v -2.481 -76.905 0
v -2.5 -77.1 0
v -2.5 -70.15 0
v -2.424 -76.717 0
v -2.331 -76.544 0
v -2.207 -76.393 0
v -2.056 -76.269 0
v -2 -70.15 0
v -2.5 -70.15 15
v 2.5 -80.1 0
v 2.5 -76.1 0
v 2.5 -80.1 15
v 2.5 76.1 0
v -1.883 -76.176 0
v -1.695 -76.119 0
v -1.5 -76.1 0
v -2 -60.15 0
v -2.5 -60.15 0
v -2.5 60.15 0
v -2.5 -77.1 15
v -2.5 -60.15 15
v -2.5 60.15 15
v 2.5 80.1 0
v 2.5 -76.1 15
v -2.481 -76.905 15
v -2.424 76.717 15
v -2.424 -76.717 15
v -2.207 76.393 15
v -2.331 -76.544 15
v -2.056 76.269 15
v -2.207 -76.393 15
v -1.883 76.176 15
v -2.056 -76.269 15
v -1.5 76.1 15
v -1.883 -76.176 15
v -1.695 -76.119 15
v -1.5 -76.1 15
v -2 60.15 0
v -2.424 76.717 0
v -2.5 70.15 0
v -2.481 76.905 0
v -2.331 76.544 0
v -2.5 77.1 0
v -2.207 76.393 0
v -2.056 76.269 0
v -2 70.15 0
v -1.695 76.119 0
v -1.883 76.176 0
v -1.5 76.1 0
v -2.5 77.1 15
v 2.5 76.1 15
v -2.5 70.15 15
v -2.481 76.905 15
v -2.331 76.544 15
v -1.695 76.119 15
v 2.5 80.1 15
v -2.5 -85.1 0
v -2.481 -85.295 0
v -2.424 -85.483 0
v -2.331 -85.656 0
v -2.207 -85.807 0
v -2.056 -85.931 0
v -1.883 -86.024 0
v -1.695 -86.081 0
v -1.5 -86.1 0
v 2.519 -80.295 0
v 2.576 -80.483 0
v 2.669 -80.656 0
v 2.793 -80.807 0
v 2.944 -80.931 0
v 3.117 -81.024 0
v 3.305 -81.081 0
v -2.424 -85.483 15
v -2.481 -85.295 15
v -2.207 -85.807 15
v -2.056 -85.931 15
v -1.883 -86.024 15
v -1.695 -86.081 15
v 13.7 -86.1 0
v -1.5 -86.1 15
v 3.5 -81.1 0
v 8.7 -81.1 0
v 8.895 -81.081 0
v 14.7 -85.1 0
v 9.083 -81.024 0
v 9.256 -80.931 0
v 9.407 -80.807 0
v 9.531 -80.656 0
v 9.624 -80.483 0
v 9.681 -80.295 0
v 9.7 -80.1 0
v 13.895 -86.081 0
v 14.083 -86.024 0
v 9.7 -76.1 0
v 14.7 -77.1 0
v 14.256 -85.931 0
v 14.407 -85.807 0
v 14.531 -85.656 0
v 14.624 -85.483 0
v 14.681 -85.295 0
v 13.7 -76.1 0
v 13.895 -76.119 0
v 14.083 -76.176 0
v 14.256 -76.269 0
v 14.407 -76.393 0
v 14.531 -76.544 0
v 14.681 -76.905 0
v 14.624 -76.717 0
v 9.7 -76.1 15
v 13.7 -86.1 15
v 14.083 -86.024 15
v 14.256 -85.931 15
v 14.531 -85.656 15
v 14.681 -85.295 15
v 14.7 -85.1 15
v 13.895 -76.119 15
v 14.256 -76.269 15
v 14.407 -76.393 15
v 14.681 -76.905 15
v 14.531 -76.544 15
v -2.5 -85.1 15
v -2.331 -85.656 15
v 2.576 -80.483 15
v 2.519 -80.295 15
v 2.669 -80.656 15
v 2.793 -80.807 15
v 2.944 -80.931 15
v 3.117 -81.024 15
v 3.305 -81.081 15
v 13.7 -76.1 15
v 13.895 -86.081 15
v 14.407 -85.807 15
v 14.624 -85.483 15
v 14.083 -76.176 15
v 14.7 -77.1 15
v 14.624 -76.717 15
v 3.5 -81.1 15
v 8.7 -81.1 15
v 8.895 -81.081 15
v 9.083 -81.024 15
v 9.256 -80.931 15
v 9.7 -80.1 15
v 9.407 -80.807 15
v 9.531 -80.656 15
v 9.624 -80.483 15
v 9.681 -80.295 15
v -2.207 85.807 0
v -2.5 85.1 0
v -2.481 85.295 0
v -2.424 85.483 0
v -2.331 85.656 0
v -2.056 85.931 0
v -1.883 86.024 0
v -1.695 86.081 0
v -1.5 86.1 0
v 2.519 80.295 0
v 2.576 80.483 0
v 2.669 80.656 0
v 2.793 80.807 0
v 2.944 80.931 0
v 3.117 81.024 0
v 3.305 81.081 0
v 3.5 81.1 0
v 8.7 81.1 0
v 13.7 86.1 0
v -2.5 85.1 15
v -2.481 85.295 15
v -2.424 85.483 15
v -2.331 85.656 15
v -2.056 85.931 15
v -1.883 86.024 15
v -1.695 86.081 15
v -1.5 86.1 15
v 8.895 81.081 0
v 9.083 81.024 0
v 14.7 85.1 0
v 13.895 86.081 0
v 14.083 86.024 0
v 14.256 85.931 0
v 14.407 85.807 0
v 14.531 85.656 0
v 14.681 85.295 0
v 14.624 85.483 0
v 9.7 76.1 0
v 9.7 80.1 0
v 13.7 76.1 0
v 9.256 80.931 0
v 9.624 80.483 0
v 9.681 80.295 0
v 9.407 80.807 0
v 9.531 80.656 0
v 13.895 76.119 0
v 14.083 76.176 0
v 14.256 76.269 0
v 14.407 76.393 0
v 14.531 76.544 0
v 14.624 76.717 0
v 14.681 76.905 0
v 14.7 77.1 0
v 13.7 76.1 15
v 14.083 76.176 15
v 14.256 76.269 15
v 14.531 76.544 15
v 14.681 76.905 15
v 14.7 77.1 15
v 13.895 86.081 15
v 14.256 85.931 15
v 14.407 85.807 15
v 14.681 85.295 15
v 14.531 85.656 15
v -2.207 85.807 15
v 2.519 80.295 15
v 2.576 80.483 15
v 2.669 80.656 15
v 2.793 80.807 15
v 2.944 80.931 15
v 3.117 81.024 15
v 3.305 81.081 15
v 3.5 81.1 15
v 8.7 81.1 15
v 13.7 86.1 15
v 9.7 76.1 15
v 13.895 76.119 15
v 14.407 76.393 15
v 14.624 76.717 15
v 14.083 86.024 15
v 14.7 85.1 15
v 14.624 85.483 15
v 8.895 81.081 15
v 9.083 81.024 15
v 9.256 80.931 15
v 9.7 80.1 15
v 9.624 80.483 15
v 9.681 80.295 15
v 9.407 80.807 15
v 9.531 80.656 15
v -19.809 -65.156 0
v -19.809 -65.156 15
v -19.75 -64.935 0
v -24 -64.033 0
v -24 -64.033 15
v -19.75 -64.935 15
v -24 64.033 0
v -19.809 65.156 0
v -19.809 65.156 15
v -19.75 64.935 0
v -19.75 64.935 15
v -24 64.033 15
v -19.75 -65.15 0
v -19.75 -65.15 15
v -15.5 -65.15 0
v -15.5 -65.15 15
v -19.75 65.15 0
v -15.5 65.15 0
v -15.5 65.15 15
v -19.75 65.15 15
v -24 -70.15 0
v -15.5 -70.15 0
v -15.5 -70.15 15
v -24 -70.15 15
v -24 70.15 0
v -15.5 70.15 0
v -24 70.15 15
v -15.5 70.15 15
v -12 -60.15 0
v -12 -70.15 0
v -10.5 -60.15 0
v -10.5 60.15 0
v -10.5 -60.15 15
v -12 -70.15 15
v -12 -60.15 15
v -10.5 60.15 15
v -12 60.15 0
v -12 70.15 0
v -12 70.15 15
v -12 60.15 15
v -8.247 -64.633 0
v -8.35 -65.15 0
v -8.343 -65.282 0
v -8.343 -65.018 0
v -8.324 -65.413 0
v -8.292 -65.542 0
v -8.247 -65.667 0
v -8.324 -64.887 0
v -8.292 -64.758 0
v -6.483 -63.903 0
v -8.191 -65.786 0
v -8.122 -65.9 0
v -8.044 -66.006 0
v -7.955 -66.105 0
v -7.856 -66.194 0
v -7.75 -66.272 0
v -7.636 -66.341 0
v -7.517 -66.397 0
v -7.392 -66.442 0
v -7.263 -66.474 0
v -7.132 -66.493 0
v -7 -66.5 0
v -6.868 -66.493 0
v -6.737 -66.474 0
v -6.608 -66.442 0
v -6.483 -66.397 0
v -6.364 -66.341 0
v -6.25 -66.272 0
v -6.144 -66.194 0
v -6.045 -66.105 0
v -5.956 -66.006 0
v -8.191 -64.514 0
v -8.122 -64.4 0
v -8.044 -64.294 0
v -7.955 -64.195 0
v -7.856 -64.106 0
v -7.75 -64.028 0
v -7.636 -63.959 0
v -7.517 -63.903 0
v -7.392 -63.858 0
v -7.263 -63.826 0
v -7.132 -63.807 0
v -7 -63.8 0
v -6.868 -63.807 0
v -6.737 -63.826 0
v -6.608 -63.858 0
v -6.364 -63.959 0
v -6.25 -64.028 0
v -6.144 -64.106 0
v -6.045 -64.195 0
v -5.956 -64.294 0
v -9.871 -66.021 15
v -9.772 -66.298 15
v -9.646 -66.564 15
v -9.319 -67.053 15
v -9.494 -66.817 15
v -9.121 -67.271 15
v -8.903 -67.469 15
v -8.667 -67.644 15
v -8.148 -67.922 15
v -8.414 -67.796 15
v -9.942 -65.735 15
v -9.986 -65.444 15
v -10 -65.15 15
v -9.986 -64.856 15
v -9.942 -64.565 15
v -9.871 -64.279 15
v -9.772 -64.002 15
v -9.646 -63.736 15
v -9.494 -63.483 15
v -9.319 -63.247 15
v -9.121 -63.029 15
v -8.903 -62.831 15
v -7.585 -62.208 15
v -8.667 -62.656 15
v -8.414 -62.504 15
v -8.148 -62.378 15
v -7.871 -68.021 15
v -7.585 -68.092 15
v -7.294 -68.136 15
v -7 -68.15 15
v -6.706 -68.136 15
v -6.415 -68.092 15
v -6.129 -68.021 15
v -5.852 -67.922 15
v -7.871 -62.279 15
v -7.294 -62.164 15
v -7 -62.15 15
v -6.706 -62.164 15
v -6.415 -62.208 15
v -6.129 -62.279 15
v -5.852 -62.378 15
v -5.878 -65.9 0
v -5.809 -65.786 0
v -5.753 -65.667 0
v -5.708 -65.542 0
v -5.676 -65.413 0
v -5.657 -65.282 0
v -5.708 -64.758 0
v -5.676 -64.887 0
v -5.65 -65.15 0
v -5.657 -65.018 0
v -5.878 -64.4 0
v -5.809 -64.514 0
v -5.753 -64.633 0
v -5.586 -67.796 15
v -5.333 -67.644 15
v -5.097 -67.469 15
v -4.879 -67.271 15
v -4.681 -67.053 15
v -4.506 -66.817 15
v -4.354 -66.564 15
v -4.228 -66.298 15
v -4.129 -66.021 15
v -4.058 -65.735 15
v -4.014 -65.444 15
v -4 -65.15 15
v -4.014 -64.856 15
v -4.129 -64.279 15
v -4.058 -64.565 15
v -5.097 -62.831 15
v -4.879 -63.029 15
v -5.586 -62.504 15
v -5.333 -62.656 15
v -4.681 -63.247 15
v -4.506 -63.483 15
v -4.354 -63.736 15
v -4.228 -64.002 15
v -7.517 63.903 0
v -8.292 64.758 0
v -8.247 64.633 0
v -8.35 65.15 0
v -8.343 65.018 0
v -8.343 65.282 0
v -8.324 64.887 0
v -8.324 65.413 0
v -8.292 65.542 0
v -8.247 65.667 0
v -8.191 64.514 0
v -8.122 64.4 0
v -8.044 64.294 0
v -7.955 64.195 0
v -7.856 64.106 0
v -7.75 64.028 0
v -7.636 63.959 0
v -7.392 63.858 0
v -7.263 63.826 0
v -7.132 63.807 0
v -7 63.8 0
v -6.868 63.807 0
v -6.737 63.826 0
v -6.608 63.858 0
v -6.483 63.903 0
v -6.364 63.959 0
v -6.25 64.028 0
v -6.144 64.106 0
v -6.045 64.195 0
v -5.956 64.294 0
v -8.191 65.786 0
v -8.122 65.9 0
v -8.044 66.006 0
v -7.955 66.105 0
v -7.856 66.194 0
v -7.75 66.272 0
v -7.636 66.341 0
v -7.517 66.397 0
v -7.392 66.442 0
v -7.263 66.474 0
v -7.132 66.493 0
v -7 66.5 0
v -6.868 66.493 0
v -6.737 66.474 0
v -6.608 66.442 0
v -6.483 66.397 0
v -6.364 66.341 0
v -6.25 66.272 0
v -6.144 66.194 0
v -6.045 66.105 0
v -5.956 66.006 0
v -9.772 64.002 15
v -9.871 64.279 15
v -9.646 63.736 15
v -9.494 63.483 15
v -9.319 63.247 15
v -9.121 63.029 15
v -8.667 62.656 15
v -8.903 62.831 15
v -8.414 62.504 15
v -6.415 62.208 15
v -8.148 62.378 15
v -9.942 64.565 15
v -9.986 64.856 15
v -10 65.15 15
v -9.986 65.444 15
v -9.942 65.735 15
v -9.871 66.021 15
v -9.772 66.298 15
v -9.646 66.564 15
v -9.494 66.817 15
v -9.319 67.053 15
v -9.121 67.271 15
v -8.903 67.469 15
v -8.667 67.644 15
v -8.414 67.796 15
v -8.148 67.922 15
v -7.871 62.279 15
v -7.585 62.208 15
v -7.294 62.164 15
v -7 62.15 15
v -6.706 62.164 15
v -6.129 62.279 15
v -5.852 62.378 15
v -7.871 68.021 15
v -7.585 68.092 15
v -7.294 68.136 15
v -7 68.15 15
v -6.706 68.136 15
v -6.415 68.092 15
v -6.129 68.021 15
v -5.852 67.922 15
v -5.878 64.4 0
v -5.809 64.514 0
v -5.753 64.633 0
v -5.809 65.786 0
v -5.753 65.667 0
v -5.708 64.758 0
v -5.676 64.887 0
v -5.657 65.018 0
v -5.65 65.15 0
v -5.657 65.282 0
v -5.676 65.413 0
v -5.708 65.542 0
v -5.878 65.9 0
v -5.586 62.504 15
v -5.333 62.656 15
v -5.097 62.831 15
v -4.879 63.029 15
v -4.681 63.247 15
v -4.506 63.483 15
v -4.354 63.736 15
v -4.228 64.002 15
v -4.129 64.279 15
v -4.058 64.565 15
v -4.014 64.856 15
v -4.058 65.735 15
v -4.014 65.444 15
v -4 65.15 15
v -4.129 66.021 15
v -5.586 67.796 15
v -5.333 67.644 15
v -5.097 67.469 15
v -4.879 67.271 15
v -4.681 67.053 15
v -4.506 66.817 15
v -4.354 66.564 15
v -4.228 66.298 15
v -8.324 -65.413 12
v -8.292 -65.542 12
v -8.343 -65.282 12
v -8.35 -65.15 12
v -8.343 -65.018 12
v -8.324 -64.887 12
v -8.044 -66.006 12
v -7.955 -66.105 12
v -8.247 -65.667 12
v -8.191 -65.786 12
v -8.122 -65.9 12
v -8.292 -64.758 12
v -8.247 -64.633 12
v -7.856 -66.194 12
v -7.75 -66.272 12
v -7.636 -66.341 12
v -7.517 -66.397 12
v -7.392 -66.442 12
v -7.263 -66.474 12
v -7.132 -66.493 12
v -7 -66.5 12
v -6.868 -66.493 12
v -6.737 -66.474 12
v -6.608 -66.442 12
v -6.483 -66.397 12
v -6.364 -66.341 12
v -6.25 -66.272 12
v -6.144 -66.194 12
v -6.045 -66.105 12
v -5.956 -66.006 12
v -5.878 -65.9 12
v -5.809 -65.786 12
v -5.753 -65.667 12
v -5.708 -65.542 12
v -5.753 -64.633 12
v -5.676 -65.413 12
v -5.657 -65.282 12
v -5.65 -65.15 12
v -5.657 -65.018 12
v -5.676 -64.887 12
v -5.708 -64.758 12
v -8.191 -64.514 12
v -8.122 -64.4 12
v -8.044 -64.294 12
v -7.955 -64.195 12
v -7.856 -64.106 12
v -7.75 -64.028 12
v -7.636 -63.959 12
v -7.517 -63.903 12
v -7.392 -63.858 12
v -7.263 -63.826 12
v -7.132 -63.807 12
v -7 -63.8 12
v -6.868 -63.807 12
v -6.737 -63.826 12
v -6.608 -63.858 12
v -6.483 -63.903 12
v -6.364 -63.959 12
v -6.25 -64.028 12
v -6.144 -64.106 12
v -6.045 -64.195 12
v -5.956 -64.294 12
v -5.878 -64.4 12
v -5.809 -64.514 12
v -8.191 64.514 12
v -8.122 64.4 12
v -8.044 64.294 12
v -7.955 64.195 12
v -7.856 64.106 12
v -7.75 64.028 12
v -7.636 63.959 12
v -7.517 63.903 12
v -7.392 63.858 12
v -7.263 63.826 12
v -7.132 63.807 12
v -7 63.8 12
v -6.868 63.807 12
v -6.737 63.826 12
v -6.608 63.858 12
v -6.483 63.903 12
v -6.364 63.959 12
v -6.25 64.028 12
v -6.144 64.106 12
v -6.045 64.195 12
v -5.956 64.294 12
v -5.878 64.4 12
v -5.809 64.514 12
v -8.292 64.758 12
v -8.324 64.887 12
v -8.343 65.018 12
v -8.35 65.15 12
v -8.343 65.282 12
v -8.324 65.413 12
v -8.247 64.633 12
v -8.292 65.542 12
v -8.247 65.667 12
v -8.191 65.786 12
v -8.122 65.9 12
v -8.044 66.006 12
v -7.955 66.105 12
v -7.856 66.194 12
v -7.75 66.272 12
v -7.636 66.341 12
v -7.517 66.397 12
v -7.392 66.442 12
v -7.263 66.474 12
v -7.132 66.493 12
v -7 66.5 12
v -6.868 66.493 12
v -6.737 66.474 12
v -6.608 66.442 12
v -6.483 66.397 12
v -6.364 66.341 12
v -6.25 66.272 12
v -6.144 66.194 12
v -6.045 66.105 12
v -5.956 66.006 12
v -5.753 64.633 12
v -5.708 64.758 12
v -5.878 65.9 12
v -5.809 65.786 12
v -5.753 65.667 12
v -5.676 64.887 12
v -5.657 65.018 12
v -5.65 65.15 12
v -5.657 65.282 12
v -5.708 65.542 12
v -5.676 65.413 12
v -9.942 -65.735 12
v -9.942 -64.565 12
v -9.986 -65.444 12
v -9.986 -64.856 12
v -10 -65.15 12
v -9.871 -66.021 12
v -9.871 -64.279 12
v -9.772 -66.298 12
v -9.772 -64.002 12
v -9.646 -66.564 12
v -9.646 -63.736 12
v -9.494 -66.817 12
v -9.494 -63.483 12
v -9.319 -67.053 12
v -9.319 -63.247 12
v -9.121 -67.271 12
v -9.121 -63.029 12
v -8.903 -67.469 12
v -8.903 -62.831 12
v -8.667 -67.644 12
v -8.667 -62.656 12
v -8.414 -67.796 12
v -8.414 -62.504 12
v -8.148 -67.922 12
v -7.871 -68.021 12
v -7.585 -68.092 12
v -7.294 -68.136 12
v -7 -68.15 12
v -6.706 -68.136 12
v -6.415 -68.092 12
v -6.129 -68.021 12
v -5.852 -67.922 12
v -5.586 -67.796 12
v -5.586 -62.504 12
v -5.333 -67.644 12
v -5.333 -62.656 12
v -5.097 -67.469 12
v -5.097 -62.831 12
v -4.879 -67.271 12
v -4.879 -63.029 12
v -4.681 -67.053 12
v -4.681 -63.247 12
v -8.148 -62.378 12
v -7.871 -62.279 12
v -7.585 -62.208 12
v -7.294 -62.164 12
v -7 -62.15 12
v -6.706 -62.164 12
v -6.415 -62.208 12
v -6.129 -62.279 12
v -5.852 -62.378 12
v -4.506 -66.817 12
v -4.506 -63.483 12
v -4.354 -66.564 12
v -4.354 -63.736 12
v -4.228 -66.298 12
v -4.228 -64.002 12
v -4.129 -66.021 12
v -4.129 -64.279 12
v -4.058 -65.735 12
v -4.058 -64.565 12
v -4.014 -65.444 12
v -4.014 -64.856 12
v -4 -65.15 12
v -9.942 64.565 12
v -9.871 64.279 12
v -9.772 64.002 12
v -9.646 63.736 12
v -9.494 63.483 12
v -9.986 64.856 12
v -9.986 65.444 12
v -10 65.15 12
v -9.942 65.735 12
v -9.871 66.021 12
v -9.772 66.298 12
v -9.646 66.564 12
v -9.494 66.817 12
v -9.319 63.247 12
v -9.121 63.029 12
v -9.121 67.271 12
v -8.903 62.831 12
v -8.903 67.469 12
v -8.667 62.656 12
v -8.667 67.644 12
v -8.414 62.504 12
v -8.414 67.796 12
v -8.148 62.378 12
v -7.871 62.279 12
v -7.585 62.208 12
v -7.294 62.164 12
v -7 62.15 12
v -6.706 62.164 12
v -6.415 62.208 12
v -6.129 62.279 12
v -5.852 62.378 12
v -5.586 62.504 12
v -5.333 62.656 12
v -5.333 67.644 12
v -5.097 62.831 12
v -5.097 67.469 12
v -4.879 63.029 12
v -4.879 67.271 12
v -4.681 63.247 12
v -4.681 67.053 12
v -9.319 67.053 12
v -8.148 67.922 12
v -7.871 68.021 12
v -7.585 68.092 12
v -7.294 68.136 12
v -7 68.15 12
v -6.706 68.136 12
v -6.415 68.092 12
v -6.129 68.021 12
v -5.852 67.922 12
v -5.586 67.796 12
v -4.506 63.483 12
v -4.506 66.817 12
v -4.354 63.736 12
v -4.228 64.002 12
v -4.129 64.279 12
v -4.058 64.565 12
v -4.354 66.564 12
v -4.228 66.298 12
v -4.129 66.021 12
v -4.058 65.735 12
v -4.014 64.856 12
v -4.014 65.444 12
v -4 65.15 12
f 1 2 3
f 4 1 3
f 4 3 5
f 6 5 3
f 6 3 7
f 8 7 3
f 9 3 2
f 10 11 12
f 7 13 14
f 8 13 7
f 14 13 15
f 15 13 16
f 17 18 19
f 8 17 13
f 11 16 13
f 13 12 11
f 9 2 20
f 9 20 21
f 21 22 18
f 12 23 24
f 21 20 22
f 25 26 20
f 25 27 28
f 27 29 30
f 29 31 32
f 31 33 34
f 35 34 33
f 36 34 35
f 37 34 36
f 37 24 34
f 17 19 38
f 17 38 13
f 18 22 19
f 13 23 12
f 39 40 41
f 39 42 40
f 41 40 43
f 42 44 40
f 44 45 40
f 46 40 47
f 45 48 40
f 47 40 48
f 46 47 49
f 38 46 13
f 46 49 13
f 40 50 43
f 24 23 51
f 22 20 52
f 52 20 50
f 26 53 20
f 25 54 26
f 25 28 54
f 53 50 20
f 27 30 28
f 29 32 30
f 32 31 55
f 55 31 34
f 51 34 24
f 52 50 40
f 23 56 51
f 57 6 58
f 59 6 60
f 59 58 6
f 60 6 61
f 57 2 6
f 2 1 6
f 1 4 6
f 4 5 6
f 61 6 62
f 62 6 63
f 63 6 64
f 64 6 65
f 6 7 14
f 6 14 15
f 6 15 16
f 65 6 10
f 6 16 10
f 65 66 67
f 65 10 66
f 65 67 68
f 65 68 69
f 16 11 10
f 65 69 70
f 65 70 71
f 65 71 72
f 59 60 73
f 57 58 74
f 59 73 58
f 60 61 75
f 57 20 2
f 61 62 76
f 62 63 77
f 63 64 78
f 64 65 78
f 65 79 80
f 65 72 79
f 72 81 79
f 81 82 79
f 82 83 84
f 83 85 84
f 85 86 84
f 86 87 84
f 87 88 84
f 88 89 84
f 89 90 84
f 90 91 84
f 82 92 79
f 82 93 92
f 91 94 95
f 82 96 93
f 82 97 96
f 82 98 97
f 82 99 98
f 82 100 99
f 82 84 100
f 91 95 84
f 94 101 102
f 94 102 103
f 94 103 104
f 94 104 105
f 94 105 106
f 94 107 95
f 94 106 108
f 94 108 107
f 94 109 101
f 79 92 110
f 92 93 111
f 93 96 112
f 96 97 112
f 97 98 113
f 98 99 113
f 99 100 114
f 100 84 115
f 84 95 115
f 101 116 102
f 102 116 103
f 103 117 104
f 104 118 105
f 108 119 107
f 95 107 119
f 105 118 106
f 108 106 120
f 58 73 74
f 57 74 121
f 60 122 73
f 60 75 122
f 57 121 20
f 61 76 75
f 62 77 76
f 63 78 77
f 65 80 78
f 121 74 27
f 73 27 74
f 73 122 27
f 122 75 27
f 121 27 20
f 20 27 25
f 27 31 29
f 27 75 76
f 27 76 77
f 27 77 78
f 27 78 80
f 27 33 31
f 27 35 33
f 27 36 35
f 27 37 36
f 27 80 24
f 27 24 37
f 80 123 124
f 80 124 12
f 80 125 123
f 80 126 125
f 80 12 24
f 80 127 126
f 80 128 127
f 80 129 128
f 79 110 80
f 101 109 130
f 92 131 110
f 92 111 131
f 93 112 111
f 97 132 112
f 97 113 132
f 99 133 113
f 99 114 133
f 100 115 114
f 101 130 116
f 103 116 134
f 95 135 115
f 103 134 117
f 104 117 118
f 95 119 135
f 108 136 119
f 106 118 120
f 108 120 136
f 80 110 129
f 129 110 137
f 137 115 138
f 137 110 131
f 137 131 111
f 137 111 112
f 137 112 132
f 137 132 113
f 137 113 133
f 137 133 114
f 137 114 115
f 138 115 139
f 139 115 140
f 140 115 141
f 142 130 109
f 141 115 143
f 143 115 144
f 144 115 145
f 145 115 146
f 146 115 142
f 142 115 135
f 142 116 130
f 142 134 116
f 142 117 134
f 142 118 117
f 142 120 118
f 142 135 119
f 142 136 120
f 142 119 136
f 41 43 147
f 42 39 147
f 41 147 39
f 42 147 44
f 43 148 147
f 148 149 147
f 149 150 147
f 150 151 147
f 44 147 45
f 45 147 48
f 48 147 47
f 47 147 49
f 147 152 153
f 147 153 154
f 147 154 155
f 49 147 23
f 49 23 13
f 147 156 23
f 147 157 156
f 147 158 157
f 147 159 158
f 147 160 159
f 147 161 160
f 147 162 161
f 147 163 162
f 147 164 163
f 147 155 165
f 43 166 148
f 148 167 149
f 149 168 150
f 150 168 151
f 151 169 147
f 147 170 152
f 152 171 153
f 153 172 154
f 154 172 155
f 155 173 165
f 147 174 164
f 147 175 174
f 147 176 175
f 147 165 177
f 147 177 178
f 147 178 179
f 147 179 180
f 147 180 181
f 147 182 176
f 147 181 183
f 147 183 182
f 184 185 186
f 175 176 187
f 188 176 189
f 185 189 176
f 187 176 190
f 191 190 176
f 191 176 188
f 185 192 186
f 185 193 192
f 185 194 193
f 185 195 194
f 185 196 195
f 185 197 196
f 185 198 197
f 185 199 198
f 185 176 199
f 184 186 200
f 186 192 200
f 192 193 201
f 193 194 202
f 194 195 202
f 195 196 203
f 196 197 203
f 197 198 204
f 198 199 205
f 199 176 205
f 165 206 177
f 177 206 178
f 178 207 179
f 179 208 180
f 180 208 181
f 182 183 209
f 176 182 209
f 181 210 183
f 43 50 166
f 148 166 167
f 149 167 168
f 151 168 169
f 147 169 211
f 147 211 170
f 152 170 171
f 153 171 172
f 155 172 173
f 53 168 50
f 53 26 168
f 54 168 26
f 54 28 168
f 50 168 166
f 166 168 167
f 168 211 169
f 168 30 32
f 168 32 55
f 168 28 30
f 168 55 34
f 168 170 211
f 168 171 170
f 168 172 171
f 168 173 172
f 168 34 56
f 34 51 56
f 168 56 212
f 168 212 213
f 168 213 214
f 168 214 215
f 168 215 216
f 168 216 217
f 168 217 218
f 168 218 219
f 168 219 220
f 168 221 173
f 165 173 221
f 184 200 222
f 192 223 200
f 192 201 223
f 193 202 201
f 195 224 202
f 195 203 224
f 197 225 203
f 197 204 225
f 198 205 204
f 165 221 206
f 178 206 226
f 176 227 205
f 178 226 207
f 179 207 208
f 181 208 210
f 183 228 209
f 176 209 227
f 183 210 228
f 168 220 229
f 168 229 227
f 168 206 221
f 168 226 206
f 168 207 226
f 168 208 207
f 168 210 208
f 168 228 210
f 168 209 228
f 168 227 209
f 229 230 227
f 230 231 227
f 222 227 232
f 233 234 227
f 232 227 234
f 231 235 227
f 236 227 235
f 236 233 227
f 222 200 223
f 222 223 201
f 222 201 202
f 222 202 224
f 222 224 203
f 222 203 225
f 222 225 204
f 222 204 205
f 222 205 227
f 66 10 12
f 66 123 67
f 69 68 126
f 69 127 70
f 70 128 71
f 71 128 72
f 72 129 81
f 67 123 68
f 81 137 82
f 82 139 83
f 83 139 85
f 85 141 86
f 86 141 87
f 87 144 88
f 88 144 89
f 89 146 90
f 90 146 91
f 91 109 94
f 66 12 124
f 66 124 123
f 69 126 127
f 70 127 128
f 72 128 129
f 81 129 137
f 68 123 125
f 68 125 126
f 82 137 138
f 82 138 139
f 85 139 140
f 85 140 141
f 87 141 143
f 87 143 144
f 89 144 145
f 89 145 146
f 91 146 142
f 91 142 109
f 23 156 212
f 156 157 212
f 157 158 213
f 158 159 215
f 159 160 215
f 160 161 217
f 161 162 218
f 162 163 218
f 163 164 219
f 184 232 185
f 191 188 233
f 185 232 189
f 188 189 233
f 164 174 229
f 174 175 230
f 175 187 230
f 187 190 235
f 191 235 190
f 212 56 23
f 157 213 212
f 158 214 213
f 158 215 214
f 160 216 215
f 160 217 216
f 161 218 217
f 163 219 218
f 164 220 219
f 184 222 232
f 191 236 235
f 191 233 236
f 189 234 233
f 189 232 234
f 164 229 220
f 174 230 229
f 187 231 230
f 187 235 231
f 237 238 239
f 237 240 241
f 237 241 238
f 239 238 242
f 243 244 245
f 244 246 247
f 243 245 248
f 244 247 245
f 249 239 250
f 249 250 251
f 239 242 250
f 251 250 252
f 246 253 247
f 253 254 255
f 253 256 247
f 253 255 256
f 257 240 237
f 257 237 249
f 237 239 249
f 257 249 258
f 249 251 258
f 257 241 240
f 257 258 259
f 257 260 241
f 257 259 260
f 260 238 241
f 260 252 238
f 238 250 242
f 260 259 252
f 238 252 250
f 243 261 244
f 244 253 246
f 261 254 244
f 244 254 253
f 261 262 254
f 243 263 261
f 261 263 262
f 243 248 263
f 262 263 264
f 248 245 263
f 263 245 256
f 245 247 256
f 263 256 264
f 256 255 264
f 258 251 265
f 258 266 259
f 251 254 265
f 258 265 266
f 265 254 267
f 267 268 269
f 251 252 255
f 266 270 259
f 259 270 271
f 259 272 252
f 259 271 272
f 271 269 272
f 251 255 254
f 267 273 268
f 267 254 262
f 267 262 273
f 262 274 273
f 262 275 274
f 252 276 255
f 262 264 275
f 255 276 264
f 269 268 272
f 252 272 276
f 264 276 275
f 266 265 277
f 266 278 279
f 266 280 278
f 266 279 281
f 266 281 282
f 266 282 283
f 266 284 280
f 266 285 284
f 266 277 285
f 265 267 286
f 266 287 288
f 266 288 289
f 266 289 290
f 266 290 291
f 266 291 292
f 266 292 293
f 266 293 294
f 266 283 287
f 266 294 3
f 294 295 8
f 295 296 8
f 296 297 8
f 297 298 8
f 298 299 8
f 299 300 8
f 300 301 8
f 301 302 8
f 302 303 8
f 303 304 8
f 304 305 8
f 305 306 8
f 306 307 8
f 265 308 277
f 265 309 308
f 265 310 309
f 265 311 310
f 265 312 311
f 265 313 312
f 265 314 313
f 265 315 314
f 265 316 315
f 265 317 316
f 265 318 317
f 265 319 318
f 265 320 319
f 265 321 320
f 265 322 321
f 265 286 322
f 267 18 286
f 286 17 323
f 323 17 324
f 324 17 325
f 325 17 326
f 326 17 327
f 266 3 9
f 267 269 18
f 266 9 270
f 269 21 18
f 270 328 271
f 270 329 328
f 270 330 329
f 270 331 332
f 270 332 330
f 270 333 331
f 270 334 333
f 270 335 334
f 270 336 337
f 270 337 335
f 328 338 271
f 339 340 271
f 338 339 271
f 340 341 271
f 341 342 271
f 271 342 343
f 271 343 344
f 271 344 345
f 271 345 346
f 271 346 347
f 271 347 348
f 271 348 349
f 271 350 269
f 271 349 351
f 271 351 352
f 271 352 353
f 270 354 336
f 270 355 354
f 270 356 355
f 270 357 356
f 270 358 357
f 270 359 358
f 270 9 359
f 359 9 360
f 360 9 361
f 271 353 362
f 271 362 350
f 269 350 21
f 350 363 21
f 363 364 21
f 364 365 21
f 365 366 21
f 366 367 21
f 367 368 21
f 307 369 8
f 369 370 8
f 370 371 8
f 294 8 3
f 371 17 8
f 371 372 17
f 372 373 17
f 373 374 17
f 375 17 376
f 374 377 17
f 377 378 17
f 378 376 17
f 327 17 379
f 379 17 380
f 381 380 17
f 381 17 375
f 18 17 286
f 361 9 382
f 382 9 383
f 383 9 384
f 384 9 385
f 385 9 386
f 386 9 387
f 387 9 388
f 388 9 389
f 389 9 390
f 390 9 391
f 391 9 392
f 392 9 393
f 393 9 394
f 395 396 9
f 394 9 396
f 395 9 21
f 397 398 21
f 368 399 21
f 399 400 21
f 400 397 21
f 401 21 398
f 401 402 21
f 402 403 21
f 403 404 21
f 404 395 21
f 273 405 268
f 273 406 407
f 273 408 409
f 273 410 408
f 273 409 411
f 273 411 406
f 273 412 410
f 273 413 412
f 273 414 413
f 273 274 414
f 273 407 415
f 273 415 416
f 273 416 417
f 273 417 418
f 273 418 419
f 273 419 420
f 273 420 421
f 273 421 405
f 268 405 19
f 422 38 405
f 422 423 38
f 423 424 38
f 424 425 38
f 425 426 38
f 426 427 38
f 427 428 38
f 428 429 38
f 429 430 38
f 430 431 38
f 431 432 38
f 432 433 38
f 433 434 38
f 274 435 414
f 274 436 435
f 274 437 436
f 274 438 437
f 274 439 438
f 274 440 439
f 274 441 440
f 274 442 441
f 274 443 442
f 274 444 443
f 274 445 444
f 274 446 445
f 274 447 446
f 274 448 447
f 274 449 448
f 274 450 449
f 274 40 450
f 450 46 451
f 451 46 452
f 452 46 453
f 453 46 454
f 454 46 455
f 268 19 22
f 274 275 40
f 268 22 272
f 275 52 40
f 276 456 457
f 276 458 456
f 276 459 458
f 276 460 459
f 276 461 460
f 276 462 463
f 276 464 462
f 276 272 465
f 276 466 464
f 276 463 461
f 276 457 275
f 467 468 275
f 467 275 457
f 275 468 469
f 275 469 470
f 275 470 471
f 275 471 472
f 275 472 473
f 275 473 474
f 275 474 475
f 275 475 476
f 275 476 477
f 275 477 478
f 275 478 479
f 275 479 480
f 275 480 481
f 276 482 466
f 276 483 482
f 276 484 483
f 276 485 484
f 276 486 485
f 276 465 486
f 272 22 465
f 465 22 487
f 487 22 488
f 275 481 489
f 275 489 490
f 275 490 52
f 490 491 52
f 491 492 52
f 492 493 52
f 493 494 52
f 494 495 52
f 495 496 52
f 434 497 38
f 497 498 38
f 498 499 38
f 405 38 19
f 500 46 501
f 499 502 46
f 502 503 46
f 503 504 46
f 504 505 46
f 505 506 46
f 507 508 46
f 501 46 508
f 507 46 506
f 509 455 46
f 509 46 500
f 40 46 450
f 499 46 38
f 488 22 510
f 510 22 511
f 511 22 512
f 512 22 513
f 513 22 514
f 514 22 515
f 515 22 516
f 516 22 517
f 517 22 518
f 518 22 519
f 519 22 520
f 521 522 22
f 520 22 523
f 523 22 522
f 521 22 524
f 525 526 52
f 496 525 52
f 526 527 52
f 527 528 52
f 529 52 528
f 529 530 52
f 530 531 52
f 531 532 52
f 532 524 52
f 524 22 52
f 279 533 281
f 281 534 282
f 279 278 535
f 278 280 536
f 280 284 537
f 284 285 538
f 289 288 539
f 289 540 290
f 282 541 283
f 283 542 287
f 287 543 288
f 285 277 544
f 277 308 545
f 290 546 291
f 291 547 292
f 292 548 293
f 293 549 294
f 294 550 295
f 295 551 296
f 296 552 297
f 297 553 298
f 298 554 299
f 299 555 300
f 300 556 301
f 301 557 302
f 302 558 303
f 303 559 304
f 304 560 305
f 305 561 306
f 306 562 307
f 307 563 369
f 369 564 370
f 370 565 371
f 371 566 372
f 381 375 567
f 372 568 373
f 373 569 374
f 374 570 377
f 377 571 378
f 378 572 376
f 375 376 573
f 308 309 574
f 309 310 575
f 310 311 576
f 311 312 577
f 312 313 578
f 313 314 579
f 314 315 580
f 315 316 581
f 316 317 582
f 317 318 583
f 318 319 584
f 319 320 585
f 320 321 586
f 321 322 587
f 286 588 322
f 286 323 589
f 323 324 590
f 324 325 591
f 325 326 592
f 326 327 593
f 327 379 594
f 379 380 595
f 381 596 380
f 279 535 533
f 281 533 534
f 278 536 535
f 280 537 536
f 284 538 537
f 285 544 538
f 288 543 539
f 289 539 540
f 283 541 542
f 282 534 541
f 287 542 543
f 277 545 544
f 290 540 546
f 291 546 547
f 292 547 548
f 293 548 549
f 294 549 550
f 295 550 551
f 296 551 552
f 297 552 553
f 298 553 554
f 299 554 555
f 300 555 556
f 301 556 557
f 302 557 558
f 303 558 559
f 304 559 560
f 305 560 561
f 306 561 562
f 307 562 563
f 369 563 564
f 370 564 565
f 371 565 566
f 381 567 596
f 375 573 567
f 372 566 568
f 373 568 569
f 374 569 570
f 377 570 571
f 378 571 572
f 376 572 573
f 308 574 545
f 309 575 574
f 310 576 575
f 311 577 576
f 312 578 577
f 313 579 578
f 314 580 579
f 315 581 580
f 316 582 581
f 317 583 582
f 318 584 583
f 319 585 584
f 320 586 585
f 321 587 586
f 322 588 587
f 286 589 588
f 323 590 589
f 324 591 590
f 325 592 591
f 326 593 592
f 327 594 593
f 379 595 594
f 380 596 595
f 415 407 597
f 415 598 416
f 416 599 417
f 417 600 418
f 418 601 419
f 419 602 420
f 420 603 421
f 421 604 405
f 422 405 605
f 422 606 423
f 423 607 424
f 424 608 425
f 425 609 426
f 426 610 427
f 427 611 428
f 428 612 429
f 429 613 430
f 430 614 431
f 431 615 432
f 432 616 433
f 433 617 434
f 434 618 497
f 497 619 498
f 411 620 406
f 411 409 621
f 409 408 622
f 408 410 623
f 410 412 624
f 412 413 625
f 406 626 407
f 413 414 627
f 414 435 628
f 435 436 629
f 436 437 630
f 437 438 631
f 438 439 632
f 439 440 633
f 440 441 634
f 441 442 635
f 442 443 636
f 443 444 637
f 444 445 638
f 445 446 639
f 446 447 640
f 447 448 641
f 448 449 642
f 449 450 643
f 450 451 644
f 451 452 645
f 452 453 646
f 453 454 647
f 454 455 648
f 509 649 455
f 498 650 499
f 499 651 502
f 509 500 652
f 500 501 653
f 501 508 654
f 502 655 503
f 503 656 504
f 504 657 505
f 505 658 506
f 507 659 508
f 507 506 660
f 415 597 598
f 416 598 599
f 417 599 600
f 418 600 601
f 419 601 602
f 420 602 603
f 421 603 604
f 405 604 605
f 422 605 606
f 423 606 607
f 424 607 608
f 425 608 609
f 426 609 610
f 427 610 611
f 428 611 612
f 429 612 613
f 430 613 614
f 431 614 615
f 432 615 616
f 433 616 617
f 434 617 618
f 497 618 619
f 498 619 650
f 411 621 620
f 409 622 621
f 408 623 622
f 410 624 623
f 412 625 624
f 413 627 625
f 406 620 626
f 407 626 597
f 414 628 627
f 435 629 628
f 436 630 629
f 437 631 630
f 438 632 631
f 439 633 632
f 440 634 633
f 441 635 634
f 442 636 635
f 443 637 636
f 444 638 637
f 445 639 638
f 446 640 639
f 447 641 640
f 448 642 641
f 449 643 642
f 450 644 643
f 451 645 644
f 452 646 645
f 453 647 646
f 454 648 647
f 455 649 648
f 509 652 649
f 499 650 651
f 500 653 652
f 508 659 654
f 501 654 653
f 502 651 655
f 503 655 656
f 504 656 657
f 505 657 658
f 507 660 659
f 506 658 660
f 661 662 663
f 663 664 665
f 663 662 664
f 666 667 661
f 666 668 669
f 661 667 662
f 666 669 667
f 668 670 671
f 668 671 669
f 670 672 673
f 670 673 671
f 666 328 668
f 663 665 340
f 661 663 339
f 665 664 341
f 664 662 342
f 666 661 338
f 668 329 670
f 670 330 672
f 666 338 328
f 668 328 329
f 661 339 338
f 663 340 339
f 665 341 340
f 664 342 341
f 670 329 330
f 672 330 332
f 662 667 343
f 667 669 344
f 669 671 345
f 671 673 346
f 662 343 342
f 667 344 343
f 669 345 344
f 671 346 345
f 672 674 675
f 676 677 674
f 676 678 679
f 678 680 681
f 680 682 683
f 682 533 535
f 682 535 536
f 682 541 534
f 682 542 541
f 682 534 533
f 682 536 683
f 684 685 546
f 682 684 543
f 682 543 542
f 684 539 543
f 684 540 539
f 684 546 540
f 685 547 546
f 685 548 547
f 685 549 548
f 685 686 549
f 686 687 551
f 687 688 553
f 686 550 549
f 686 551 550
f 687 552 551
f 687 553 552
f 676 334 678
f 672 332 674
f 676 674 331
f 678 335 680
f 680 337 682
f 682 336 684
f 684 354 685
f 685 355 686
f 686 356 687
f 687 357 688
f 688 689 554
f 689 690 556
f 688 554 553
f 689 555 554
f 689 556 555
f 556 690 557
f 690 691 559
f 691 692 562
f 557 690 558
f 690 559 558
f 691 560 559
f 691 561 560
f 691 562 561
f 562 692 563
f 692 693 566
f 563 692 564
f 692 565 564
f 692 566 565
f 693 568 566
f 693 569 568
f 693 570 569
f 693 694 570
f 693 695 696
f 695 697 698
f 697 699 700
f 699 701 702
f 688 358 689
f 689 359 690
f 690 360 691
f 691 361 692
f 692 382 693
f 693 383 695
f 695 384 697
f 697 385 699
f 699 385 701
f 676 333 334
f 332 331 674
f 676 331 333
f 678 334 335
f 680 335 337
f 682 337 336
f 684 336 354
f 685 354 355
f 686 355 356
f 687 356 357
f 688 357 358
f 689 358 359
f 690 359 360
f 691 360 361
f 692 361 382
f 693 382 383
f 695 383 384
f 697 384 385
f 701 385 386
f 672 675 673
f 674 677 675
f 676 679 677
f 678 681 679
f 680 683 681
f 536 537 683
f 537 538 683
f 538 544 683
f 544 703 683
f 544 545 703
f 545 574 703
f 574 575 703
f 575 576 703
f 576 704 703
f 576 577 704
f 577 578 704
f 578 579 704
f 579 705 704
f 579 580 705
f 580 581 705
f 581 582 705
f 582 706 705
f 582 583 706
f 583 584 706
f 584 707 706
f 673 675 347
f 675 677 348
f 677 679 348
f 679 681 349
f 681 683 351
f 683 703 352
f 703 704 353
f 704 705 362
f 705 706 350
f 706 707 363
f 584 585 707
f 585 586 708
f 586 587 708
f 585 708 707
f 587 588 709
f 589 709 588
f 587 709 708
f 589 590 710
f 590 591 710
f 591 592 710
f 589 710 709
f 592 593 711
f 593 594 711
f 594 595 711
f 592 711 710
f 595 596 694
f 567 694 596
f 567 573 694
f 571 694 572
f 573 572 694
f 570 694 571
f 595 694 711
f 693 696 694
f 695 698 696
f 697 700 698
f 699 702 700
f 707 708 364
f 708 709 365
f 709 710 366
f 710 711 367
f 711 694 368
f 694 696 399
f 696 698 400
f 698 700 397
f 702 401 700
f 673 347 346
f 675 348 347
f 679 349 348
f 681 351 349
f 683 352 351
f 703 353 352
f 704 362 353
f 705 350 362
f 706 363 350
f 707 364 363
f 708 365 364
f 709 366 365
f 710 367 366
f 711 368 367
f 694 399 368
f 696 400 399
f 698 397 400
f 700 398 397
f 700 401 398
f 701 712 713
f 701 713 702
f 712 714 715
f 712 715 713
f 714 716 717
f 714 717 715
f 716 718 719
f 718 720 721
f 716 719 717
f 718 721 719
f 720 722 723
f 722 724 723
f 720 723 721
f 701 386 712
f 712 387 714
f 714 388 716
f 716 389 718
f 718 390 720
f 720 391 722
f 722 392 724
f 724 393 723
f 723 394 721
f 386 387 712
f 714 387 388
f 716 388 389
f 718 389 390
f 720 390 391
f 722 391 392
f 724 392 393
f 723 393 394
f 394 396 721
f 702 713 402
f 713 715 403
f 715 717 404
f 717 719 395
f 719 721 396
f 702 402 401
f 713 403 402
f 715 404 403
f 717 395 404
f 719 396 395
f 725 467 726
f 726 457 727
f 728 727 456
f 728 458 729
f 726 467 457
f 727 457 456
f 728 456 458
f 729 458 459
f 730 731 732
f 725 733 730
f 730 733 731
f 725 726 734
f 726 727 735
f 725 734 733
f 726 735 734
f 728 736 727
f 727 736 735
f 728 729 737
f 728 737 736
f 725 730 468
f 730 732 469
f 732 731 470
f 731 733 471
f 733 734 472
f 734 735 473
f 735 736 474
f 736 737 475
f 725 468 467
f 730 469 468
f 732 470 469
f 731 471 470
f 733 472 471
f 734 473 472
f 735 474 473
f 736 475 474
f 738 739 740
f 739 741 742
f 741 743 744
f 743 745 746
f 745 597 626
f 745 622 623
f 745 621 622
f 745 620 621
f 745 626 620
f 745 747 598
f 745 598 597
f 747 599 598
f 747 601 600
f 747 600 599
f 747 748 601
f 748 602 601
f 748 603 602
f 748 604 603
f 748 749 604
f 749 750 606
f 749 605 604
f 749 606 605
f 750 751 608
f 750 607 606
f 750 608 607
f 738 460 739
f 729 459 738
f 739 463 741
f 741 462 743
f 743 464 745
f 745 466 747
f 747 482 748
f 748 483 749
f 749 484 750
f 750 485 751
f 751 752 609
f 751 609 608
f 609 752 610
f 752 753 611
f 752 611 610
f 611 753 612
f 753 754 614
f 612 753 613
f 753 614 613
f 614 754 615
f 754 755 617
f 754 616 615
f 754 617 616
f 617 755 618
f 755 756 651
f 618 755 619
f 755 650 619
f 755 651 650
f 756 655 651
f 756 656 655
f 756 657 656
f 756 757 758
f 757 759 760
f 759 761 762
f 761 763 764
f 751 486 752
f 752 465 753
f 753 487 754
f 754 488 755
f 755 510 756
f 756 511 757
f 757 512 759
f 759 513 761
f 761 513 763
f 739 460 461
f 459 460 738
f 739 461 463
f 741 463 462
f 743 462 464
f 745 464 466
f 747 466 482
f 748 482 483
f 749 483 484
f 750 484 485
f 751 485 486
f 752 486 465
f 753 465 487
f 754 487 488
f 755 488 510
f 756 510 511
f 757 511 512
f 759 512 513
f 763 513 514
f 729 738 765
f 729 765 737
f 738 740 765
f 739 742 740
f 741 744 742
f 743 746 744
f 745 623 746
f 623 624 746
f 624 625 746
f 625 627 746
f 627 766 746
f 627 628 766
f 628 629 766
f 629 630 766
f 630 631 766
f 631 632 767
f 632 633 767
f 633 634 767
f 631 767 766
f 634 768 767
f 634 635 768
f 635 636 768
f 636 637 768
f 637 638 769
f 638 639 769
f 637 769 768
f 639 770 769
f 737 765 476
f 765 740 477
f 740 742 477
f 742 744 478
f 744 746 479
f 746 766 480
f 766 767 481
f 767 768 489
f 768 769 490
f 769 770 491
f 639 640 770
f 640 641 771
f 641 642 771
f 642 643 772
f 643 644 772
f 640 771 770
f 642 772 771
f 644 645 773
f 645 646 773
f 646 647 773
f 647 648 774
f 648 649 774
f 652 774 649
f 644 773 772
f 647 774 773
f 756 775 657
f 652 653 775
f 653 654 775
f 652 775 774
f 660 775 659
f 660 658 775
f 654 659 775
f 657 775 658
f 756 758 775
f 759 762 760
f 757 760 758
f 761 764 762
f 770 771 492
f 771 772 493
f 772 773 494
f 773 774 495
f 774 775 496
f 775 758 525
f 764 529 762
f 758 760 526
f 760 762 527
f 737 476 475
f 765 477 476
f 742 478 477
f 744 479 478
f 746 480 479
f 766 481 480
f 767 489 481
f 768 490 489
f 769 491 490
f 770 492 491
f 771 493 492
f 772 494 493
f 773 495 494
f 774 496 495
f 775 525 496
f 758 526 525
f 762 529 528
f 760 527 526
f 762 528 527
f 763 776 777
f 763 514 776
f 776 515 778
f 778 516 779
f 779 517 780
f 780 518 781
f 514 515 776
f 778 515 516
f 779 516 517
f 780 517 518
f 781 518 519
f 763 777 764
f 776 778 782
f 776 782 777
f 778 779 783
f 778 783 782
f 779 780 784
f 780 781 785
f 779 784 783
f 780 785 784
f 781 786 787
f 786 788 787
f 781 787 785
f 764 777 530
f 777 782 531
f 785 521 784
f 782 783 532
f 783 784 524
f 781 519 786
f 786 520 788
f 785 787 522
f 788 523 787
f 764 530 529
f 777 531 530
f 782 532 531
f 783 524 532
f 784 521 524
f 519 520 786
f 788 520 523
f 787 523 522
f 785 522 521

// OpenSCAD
thick=7.2;
T2=15;
hback=130+0.3;
hfront=161.9+0.3;
T=5;

UT=13;

for(i=[-1,1])
translate([-7,65.15*i,0])
difference() {
    cube_center([10,10,T2]);
    cylinder(d=2.7,h=T2,$fn=64);
    translate([0,0,T2-3])
    cylinder(d1=6,d2=6,h=3,$fn=64);
}

cube_center([T,hfront+2*T,T2],r=1);

difference() {
for(i=[-1,1])
translate([T-T/2+thick/2,i*(hfront/2),0])
cube_center([2*T+thick,T*2,T2],r=1);

translate([T-T/2+thick/2,0,0])
cube_center([thick,hfront,T2],r=1);
}



translate([-13,0,0])
mirror([1,0,0]) {
cube_center([T,hback+2*T,T2]);
difference() {

translate([4.5+2,0,0])
    cube_center([9,hback+2*T,T2]);

union() {
    translate([4.5,0,0])
    cube_center([4.5,hback,T2]);
    
    for(i=[-1,1]) scale([1,i,1])
    translate([9-.6,hback/2-4.5/2-.5,0])
    rotate([0,0,-15])
    cube_center([4.5,4.5,T2]);
    
    translate([9,0,0])
    cube_center([4.5,hback-3,T2]);
    }


/*    for(i=[-1,1])
    translate([T-T/2+thick/2,i*(hback/2),0])
    cube_center([2*T+thick,T,T2],r=1);
    
    }*/
    

}

}

module cube_center(dims,r=0,$fn=32) {
    if(r==0) {
        translate([-dims[0]/2, -dims[1]/2, 0])
        cube(dims);
    } else {
        
        minkowski() {
            translate([-dims[0]/2+r, -dims[1]/2+r, 0])
            cube([dims[0]-2*r,dims[1]-2*r,dims[2]]);
            cylinder(r=r,h=0.00001,$fn=$fn);
        }
    }
}
